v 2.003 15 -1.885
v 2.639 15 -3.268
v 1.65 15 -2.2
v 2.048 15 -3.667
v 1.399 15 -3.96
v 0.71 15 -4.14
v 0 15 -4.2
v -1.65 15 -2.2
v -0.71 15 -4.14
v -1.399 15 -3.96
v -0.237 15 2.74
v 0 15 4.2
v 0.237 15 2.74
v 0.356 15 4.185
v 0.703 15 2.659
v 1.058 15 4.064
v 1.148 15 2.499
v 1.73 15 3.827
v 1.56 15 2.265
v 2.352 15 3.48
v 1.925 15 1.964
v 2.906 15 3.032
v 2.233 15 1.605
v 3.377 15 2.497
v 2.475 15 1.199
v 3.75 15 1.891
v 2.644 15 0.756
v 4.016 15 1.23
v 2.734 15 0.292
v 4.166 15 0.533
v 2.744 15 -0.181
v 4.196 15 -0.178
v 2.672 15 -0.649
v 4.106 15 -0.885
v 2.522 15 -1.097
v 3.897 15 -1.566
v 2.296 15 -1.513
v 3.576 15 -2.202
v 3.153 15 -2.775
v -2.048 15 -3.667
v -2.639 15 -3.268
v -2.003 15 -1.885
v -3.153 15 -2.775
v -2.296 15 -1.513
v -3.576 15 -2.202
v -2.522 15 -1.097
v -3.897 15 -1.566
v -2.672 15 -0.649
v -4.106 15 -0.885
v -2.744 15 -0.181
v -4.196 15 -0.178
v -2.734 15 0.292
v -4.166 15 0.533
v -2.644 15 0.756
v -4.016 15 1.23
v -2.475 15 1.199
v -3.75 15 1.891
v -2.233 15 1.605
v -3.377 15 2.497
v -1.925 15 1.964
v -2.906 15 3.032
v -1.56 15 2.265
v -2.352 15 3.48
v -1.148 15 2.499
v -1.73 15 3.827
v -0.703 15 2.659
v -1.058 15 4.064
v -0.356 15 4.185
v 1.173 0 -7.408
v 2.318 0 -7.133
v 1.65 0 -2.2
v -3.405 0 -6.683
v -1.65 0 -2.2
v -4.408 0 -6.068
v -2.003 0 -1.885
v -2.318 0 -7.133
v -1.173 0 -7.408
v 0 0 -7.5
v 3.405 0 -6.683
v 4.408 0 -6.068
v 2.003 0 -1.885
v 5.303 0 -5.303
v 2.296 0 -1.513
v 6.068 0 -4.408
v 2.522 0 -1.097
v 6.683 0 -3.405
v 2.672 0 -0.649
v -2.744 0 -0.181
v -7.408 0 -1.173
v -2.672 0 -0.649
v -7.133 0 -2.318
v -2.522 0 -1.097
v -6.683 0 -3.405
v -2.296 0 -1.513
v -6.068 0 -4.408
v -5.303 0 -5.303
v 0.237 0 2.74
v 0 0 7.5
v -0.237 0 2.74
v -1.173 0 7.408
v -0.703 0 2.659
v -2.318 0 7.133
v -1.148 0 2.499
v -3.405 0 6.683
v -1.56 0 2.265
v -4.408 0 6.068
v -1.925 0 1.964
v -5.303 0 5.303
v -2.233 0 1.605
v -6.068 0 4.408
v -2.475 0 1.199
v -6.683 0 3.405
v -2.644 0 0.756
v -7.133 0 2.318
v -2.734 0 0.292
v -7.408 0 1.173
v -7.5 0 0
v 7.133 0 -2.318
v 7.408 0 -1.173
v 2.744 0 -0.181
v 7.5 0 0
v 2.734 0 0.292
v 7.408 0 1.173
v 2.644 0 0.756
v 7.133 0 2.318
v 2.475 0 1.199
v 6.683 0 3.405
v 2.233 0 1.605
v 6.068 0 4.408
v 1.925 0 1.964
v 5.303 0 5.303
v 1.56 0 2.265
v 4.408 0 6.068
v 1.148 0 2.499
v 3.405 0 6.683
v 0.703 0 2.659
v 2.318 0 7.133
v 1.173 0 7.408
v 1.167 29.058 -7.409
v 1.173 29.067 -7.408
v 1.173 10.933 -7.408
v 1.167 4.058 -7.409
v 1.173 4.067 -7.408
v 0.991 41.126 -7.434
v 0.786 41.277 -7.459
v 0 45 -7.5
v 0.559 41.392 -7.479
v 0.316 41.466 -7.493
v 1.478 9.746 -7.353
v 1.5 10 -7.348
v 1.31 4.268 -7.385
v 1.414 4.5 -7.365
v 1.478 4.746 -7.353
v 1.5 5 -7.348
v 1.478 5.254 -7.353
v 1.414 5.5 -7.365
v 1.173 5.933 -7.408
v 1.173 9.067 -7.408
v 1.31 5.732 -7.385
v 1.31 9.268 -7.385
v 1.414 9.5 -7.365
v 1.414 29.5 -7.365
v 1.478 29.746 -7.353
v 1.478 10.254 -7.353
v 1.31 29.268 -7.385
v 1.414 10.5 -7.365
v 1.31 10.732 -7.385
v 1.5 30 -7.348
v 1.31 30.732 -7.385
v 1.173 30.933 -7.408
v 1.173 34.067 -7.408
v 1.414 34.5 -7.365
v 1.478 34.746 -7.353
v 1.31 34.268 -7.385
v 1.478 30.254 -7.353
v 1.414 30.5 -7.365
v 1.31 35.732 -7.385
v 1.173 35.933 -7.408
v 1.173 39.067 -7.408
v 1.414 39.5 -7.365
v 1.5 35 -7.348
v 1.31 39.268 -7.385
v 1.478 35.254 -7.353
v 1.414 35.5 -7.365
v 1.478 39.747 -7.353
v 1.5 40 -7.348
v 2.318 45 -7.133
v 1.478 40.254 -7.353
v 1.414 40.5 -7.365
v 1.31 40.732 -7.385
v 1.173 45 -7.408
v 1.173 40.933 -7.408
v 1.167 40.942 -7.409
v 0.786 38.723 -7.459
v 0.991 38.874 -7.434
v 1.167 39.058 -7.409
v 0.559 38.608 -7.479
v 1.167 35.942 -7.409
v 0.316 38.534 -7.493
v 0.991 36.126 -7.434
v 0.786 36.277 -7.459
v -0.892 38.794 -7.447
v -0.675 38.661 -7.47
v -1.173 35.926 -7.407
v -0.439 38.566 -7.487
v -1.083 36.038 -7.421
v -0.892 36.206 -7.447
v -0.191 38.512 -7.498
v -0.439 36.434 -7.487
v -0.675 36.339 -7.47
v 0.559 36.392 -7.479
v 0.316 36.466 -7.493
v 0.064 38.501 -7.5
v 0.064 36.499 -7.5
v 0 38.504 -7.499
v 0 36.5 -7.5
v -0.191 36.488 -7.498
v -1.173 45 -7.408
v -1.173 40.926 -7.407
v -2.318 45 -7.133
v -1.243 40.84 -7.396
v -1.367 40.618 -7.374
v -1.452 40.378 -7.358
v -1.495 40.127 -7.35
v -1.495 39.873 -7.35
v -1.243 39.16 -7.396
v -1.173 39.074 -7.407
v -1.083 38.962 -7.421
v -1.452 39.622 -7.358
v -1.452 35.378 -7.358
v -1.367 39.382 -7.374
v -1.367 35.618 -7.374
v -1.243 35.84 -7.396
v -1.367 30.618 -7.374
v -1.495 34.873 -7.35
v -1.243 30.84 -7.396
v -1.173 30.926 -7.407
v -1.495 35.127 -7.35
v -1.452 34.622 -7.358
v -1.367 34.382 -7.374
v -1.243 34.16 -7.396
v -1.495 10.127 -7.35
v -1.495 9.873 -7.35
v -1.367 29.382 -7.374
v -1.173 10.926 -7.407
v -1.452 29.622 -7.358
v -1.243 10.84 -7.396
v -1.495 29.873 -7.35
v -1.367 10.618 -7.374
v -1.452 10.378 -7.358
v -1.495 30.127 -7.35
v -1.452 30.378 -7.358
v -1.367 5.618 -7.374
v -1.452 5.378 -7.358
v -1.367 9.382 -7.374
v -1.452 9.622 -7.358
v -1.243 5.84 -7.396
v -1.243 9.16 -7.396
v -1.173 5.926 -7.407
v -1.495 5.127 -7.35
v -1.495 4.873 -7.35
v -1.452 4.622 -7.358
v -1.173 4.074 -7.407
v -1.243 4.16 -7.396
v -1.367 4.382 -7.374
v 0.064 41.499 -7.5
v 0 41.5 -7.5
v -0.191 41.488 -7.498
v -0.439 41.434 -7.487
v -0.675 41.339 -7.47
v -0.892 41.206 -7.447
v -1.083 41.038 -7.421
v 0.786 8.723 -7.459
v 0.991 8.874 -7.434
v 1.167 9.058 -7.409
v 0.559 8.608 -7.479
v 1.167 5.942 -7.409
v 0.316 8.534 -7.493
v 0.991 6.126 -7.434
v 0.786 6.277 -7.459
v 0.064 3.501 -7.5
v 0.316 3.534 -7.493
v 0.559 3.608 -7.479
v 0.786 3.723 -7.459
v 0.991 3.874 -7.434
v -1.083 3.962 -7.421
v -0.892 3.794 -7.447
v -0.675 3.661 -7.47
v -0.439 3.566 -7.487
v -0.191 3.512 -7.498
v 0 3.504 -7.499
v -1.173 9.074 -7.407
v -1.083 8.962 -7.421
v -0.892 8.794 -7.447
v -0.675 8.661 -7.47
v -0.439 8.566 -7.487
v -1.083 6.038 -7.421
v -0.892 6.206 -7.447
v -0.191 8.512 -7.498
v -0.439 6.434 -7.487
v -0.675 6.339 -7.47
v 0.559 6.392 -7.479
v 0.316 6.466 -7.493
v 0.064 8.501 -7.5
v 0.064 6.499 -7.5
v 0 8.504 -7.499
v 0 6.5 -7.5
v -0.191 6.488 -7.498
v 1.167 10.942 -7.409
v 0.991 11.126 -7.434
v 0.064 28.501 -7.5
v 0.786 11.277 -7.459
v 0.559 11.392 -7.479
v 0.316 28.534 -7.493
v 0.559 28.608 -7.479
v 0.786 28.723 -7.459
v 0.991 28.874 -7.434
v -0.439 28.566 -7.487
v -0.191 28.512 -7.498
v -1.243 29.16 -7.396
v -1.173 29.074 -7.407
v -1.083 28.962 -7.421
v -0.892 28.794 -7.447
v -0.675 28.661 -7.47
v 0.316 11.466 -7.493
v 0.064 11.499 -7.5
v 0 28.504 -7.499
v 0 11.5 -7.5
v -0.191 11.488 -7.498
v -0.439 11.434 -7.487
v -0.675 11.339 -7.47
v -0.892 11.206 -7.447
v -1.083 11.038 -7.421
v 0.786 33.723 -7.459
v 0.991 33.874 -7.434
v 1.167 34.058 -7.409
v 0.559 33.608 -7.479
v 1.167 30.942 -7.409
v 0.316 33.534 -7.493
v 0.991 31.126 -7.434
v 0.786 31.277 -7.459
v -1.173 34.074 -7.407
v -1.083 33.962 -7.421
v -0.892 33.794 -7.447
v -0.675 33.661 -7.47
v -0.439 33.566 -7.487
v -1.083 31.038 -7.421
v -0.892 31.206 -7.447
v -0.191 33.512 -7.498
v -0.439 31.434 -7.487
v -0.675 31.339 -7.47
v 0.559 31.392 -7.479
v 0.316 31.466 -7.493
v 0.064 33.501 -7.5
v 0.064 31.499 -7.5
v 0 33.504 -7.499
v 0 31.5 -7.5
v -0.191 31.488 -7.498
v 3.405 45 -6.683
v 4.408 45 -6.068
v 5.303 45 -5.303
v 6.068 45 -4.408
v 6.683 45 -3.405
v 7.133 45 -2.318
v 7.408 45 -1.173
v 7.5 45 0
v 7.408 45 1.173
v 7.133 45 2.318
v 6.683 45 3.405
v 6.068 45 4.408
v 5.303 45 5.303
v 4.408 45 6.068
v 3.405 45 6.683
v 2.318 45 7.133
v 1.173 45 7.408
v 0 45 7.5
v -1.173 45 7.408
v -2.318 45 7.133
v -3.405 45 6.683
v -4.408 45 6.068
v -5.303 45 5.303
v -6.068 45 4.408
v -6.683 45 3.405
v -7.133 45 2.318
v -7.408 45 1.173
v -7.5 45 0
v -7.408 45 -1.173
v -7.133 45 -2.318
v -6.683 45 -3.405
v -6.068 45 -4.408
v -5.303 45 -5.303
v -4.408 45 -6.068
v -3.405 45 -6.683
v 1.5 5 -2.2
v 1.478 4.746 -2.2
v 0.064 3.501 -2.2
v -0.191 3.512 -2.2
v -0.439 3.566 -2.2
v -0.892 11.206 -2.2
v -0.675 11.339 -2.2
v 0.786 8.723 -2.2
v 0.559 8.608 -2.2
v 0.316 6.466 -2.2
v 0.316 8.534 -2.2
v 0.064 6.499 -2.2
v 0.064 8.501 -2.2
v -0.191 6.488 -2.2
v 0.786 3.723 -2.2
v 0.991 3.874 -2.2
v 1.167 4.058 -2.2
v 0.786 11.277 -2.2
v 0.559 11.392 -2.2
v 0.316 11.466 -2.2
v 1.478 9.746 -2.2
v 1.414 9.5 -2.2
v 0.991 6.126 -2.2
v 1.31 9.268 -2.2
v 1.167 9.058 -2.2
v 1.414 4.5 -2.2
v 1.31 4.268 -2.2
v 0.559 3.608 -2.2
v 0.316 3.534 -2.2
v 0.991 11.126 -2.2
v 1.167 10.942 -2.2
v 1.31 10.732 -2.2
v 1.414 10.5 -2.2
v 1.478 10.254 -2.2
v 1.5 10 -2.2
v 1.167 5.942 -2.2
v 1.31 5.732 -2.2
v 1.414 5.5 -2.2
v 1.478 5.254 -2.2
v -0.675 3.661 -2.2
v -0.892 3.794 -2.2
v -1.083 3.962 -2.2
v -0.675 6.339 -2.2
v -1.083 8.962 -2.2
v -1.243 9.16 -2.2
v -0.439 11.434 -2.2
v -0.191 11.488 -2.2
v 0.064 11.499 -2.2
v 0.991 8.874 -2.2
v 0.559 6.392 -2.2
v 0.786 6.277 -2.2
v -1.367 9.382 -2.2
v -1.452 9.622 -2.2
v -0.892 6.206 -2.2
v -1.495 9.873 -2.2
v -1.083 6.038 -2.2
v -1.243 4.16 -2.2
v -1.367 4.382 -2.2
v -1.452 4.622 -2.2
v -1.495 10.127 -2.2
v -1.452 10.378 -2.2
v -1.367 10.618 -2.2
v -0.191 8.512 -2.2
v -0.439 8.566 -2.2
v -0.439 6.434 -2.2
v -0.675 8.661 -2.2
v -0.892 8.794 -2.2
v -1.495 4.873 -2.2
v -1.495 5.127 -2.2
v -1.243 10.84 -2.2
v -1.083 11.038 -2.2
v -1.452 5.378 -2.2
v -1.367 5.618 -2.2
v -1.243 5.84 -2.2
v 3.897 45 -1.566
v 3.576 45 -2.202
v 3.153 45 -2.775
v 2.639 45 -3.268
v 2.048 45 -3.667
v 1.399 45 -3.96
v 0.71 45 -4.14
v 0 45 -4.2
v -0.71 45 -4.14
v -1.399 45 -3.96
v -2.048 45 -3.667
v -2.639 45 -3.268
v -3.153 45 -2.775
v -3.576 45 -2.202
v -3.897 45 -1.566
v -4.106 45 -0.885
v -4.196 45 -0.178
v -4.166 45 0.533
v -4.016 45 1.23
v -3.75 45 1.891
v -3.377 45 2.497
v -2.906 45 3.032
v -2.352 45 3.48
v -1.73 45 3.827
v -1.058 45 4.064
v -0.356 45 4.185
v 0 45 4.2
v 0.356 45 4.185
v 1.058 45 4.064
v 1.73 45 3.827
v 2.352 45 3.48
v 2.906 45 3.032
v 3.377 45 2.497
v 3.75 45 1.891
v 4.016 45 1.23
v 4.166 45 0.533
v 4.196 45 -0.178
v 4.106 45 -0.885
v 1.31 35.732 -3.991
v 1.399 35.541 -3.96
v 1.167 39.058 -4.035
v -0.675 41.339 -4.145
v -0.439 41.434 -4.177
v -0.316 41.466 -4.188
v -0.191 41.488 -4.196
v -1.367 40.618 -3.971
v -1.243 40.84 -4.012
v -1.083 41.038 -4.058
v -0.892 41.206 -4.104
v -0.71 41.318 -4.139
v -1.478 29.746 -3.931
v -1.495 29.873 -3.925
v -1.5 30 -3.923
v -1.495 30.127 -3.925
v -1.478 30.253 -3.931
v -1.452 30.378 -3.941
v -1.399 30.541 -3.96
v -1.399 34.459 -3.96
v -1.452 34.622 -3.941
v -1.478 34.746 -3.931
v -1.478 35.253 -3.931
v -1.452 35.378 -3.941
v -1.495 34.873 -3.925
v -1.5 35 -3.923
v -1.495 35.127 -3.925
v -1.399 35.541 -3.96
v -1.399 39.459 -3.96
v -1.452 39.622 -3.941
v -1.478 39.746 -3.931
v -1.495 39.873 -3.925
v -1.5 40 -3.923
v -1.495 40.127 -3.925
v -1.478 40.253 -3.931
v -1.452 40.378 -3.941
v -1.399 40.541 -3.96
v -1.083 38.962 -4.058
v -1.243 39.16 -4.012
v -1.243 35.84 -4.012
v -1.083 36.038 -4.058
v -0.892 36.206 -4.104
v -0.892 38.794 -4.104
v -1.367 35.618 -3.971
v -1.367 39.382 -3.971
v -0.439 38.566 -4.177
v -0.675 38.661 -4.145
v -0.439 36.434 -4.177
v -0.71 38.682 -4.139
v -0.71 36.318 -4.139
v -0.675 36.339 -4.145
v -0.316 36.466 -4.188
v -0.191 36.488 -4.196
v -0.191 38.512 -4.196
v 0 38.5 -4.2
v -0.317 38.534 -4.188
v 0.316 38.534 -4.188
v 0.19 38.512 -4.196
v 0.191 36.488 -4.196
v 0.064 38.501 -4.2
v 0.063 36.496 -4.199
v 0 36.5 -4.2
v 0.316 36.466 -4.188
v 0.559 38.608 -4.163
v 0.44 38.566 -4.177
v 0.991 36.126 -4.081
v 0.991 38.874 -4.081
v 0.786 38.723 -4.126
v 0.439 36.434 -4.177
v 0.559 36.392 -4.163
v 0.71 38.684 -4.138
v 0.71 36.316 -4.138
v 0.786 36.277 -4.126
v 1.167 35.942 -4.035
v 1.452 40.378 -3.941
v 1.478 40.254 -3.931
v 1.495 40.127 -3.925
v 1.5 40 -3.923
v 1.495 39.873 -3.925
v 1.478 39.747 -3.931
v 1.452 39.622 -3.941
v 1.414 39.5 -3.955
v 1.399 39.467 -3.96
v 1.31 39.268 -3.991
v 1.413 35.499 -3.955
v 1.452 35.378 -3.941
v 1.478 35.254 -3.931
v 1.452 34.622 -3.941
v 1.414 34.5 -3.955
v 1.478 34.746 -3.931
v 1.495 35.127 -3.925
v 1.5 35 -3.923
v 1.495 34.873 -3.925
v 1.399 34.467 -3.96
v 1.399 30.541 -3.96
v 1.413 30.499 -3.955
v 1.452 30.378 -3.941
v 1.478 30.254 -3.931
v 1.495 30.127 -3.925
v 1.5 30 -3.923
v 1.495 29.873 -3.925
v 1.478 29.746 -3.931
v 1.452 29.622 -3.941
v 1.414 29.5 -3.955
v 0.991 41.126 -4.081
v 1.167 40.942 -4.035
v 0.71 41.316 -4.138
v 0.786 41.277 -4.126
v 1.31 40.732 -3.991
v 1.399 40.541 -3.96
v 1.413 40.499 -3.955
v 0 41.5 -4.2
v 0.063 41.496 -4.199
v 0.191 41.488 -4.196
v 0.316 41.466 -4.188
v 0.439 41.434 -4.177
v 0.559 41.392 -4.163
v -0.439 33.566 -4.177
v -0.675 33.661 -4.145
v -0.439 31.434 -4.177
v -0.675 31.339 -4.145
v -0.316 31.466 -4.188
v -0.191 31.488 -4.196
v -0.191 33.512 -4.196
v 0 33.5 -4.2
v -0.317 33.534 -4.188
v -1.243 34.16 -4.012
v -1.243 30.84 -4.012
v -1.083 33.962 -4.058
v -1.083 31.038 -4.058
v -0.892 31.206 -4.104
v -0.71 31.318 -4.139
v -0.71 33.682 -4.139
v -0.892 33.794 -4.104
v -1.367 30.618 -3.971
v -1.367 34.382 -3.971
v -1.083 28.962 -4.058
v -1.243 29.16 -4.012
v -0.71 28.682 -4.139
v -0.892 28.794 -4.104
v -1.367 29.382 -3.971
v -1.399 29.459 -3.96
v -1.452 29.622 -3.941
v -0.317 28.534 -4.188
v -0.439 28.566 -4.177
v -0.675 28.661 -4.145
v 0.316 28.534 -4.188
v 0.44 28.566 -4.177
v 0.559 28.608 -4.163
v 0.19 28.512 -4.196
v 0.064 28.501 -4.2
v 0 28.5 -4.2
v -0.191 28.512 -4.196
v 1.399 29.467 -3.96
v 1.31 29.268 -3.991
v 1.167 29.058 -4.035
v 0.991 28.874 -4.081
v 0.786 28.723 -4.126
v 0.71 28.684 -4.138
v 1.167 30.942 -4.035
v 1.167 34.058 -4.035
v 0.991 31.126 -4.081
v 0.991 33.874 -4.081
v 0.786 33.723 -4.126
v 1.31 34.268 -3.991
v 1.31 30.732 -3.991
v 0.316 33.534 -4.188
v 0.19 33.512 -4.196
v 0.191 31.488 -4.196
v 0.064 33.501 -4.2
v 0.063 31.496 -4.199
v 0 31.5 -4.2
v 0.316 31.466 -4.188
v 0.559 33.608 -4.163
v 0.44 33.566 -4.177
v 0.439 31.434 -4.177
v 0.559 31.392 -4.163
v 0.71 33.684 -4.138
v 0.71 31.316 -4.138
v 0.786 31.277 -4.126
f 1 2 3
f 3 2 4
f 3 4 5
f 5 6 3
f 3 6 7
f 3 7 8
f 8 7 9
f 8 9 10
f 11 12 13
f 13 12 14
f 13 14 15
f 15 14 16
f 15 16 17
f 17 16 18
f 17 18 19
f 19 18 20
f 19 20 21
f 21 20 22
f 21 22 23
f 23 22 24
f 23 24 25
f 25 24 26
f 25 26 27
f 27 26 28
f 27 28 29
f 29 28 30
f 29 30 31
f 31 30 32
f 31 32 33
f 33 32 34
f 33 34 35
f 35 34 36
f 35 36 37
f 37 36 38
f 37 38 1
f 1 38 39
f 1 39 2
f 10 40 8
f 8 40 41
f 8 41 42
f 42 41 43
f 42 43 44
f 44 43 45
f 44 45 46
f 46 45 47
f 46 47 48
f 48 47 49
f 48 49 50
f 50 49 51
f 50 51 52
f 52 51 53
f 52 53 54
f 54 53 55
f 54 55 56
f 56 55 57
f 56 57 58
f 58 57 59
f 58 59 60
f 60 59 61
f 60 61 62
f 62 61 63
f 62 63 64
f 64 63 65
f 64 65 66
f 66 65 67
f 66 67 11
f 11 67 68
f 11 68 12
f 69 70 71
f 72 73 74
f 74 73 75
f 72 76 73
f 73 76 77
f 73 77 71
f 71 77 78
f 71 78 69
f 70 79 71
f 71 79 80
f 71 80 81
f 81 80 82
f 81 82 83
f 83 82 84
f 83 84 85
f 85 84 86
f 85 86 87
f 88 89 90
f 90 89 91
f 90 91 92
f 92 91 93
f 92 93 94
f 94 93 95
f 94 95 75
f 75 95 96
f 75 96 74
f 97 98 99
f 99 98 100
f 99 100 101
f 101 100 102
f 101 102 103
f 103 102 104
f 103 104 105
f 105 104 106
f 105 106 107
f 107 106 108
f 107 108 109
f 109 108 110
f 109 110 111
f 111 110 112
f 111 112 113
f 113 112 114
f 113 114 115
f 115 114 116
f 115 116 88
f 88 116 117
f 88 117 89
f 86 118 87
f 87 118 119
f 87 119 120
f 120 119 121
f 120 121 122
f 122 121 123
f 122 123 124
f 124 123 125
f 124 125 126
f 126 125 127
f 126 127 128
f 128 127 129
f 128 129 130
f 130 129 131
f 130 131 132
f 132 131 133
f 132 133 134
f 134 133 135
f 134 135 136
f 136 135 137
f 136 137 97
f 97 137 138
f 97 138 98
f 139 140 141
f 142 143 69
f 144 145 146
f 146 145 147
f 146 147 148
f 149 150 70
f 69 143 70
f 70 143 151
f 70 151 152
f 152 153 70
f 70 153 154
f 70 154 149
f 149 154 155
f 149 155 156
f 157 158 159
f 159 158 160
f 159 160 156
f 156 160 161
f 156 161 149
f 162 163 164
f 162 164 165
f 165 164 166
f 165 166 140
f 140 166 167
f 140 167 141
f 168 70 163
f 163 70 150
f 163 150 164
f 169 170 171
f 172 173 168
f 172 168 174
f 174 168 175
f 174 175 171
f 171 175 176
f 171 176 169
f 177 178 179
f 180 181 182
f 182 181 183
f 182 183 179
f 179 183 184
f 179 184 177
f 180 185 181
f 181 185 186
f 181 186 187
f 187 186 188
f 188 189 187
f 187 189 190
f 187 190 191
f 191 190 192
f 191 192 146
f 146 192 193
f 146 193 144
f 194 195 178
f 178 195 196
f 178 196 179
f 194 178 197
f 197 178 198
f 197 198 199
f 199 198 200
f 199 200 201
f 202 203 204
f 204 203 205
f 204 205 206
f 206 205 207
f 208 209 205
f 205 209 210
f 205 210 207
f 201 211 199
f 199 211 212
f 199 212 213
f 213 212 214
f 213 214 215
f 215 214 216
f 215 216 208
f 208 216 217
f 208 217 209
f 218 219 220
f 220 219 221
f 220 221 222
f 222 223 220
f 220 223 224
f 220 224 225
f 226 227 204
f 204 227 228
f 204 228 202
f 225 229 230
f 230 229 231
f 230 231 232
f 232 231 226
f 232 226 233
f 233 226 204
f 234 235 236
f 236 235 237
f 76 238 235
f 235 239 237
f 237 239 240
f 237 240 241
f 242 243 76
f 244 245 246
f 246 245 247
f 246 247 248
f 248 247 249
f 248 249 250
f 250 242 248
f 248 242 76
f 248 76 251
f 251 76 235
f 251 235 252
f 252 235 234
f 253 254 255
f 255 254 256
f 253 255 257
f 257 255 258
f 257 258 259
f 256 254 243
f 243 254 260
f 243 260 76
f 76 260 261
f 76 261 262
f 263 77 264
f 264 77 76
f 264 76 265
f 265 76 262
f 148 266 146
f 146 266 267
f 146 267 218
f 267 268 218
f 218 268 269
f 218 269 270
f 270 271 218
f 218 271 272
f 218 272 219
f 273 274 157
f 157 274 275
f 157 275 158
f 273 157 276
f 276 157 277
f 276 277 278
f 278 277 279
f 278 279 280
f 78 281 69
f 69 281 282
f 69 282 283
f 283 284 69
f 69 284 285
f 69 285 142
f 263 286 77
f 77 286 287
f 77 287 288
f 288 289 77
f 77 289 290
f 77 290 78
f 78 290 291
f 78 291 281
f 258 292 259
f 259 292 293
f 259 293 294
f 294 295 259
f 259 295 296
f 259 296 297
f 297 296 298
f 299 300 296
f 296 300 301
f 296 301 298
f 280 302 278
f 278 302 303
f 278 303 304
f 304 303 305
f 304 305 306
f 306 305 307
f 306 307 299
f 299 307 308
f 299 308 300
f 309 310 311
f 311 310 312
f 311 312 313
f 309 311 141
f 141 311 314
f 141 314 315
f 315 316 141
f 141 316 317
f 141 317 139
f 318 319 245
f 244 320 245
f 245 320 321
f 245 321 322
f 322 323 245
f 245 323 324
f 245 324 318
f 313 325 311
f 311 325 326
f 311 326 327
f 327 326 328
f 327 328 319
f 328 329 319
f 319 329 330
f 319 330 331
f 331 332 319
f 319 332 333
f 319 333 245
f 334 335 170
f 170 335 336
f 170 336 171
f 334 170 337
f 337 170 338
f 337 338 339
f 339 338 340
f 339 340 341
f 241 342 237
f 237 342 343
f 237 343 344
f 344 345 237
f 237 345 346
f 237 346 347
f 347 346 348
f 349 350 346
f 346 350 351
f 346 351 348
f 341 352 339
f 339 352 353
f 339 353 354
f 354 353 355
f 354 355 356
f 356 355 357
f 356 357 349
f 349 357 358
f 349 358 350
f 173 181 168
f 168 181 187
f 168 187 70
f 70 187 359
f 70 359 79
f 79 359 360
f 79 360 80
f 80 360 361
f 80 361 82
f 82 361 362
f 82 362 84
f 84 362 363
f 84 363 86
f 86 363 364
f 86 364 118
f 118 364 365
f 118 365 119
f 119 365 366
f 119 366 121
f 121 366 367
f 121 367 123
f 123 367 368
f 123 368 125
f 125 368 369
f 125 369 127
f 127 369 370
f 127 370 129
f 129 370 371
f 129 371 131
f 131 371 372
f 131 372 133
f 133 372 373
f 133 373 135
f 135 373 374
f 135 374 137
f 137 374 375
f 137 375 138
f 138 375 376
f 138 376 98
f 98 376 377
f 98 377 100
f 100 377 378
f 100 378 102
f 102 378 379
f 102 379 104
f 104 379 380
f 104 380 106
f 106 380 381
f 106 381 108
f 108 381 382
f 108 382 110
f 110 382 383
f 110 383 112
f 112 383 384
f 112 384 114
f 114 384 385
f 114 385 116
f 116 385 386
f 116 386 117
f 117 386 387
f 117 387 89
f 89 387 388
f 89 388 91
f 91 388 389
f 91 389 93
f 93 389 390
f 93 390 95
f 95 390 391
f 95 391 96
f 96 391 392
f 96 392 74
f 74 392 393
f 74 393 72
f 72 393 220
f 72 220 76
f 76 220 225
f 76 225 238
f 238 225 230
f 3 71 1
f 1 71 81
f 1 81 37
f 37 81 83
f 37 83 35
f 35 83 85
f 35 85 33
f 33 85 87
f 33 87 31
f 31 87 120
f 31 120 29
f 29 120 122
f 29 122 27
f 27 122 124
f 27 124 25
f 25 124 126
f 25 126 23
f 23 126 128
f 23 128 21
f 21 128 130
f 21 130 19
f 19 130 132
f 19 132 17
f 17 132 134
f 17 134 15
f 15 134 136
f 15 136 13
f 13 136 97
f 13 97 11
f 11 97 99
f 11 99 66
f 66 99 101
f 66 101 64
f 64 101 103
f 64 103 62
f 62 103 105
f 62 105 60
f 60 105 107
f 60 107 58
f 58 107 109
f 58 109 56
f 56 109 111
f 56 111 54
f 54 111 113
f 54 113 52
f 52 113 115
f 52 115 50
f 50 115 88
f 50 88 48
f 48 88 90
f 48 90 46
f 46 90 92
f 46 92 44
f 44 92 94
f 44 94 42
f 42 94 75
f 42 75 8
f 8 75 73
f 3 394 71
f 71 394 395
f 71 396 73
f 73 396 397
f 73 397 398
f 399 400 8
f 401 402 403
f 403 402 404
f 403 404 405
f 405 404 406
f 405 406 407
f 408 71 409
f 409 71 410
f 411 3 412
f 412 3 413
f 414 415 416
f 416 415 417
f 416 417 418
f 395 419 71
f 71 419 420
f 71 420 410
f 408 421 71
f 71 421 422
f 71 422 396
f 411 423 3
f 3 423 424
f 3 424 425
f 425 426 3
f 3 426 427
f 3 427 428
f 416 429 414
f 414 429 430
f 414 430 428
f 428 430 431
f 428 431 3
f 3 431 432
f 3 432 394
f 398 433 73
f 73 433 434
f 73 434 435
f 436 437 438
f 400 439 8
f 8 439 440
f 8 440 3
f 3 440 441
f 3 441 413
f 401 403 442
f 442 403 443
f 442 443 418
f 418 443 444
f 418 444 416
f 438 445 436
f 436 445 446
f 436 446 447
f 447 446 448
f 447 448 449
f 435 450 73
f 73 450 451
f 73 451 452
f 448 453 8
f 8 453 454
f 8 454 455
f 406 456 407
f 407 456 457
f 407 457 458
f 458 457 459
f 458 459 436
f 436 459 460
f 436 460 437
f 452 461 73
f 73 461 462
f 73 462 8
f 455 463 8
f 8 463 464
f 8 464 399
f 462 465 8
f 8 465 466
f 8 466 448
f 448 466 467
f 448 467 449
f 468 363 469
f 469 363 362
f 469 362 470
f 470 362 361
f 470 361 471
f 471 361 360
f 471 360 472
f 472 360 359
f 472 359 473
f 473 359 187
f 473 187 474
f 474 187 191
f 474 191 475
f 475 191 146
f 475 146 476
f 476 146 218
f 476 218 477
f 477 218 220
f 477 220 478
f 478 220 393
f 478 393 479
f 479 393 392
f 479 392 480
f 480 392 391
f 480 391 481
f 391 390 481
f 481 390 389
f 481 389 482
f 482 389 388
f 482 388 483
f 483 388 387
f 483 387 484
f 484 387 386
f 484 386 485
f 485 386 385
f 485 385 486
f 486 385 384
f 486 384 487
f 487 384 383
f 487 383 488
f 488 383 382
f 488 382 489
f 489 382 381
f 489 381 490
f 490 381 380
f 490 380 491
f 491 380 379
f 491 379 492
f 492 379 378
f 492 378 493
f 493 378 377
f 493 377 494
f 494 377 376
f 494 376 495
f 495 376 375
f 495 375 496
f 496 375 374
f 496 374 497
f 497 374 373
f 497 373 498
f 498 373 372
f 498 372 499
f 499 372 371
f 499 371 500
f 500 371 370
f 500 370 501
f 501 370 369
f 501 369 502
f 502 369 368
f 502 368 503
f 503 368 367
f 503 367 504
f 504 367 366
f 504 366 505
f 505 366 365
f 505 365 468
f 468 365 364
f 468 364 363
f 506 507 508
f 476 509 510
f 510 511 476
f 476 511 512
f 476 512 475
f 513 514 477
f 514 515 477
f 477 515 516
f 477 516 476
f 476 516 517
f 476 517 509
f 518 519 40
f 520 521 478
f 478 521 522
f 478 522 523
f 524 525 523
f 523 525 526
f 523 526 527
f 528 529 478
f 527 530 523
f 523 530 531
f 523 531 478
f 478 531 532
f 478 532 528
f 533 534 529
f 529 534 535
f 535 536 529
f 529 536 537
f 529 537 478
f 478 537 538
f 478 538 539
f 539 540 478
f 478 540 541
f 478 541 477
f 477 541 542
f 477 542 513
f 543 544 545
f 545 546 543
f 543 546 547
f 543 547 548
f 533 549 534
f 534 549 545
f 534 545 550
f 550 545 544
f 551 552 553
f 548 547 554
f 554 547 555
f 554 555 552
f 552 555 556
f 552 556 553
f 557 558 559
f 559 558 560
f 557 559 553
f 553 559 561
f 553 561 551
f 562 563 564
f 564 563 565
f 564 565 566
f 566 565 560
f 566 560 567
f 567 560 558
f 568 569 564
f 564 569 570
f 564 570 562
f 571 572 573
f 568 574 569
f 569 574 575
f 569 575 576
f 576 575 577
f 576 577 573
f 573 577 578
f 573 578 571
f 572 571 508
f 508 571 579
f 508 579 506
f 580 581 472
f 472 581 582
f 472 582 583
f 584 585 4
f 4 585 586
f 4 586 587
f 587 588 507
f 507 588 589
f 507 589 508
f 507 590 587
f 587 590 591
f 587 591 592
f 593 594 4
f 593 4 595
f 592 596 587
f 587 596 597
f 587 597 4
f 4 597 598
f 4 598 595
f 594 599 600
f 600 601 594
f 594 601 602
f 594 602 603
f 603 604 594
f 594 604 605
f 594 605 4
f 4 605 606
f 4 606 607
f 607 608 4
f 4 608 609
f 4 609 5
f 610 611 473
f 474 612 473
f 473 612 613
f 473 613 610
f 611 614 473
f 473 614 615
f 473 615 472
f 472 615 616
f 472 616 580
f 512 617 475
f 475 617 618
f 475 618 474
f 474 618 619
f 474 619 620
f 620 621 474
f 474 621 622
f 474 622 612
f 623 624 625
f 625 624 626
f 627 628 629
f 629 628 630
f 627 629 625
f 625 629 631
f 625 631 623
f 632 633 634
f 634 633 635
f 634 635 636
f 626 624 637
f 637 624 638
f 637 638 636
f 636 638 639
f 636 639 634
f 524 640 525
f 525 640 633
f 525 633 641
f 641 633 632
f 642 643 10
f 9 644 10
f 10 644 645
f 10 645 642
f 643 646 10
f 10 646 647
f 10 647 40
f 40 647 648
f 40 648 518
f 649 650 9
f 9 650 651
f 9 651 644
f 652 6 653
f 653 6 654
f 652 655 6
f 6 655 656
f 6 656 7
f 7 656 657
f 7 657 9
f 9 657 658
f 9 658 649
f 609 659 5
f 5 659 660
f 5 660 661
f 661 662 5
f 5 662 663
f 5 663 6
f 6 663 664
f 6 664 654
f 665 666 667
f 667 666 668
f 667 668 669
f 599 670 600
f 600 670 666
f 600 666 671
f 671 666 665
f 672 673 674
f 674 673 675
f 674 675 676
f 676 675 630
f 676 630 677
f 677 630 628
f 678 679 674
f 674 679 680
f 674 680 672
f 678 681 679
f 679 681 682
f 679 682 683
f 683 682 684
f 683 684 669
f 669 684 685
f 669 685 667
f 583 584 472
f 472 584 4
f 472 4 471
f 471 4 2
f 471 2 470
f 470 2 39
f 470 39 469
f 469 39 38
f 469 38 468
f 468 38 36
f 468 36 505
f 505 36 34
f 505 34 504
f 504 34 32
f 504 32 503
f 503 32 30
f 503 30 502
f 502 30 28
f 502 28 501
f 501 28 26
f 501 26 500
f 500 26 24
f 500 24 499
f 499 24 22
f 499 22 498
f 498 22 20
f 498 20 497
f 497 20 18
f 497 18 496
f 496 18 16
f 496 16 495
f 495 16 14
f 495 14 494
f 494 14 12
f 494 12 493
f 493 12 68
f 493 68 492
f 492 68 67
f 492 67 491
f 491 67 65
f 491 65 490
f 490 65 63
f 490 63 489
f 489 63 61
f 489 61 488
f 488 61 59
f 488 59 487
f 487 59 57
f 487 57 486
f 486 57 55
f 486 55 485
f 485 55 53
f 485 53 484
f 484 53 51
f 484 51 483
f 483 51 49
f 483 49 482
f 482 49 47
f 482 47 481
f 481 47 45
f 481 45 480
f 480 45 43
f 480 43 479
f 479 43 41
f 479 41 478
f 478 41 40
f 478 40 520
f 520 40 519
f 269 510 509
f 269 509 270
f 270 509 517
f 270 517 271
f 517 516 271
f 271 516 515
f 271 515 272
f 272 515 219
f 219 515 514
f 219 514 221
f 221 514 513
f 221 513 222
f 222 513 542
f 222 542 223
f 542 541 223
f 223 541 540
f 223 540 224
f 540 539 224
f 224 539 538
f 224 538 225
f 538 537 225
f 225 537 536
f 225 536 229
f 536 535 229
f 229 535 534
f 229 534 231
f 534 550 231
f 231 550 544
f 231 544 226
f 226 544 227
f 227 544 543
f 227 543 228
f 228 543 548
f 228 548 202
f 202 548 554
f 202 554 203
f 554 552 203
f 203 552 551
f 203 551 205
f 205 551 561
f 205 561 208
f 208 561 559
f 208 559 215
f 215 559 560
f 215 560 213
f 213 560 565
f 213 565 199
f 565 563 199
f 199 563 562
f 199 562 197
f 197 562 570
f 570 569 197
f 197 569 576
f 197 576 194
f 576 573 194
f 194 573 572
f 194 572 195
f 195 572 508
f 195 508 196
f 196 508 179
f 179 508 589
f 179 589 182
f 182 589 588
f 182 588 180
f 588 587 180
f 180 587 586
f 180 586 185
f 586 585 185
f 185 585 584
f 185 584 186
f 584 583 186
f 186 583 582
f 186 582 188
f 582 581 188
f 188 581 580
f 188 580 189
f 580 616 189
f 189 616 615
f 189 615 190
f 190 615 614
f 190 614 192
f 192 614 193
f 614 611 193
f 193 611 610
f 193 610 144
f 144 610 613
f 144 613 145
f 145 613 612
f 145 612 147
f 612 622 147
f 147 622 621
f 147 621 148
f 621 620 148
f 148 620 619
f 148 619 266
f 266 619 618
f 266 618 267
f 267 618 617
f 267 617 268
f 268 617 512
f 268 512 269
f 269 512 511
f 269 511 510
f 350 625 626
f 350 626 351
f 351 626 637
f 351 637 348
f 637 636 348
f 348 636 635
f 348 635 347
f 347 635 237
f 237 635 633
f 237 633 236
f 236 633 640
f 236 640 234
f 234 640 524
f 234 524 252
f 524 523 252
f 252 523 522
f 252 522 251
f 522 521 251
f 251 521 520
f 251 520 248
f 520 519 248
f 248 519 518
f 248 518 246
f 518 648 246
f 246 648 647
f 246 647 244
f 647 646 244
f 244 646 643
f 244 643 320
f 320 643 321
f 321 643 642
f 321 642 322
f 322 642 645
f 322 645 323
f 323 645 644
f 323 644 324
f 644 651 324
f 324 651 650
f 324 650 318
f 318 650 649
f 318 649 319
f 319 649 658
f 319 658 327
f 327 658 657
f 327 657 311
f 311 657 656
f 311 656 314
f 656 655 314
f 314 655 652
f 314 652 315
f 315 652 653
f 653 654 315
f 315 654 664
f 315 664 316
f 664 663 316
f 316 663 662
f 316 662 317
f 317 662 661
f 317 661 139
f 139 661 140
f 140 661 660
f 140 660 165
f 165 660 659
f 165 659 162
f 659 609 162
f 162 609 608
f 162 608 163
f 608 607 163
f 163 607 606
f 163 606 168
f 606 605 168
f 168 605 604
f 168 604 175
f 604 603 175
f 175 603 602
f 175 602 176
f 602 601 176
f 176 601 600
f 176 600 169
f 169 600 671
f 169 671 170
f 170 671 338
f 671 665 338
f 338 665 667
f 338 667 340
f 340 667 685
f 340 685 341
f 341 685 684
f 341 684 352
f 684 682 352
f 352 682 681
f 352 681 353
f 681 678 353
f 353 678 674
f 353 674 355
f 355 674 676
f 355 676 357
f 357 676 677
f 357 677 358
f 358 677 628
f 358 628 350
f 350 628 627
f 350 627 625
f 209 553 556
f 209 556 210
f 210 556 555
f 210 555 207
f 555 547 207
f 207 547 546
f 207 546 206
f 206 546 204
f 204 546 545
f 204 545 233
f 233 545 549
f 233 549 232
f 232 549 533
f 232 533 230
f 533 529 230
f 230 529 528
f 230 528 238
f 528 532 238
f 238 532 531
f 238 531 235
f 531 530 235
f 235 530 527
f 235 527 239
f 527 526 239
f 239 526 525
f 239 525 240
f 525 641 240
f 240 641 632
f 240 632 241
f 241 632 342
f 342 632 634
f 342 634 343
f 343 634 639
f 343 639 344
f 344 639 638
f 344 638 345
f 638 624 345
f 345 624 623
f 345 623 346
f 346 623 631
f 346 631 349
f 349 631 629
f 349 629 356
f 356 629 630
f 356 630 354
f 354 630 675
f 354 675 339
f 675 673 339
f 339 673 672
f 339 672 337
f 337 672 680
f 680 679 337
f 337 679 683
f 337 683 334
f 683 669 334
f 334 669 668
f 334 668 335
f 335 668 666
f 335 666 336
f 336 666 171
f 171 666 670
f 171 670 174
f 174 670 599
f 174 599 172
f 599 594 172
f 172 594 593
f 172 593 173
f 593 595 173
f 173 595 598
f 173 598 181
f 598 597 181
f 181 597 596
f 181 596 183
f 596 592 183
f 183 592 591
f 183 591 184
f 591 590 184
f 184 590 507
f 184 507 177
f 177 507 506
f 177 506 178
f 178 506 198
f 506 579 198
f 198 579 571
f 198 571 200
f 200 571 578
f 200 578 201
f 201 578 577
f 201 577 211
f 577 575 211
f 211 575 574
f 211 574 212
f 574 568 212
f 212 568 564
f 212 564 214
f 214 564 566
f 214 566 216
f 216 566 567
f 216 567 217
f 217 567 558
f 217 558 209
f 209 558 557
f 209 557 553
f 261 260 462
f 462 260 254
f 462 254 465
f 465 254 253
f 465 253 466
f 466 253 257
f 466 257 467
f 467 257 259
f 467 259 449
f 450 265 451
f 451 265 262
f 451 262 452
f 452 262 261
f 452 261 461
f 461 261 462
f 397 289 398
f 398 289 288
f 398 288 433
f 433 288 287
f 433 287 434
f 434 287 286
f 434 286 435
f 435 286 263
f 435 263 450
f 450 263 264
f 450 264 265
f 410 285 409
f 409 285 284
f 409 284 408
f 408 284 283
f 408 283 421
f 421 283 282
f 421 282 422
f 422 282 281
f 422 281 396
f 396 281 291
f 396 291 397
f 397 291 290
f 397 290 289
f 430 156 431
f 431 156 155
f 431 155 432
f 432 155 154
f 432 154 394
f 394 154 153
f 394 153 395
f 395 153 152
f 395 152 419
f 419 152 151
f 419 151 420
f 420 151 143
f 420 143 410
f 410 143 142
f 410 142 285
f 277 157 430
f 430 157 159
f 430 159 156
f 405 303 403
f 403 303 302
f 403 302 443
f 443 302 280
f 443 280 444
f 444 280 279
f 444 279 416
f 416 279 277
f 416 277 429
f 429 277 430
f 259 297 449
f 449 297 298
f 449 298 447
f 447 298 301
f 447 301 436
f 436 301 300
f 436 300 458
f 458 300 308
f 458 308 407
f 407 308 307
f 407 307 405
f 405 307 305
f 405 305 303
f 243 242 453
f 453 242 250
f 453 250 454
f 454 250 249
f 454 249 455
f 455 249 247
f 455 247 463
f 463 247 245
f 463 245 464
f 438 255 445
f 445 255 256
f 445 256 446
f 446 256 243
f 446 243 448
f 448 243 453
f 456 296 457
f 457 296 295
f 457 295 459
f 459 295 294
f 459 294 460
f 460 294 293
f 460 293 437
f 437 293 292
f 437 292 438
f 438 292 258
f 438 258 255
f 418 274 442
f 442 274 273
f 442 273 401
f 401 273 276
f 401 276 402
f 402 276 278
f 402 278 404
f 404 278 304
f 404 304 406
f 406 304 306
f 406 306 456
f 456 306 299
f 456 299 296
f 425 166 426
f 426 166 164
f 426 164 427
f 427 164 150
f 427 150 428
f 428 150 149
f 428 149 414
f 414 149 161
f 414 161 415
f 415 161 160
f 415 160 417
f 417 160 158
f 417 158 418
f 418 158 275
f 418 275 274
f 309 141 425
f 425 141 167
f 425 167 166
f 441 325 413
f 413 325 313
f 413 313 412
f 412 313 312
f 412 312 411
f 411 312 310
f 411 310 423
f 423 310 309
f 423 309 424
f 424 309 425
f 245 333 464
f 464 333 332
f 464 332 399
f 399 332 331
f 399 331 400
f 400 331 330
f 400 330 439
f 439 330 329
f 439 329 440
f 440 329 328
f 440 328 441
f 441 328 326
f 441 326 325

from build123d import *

# Parameters (mm, degrees)
IZIM1_R                     = 7.5
Y_KSEKLIK_EKSTR_ZYON1_DEPTH = 15
IZIM2_R                     = 7.5
IZIM2_R_2                   = 4.2
Y_KSEKLIK_EKSTR_ZYON2_DEPTH = 30
IZIM3_R                     = 1.5
KES_EKSTR_ZYON1_DEPTH       = 10


with BuildPart() as part:
    # Çizim1 → Yükseklik-Ekstrüzyon1 (new body)
    with BuildSketch(Plane(origin=(0, 0, 0), x_dir=(1, 0, 0), z_dir=(0, 1, 0))):
        with Locations(Location((0, 0, 0), (0, 0, 270))):
            Circle(IZIM1_R)
        with BuildLine():
            Line((-1.65, 2.2), (1.65, 2.2))
            ThreePointArc((1.65, 2.2), (0, -2.75), (-1.65, 2.2))
        make_face(mode=Mode.SUBTRACT)
    extrude(amount=Y_KSEKLIK_EKSTR_ZYON1_DEPTH)

    # Çizim2 → Yükseklik-Ekstrüzyon2 (add)
    with BuildSketch(Plane(origin=(0, 15, 0), x_dir=(1, 0, 0), z_dir=(0, 1, 0))):
        with Locations(Location((0, 0, 0), (0, 0, 270))):
            Circle(IZIM2_R)
        with Locations(Location((0, 0, 0), (0, 0, 270))):
            Circle(IZIM2_R_2, mode=Mode.SUBTRACT)
    extrude(amount=Y_KSEKLIK_EKSTR_ZYON2_DEPTH)

    # Çizim3 → Kes-Ekstrüzyon1 (cut)
    with BuildSketch(Plane.XY):
        with Locations(Location((0, 40, 0), (0, 0, 90))):
            Circle(IZIM3_R)
        with Locations(Location((0, 35, 0), (0, 0, 90))):
            Circle(IZIM3_R)
        with Locations(Location((0, 30, 0), (0, 0, 90))):
            Circle(IZIM3_R)
        with Locations((0, 10)):
            Circle(IZIM3_R)
        with Locations((0, 5)):
            Circle(IZIM3_R)
    extrude(amount=-KES_EKSTR_ZYON1_DEPTH, mode=Mode.SUBTRACT)


solid = part.part
